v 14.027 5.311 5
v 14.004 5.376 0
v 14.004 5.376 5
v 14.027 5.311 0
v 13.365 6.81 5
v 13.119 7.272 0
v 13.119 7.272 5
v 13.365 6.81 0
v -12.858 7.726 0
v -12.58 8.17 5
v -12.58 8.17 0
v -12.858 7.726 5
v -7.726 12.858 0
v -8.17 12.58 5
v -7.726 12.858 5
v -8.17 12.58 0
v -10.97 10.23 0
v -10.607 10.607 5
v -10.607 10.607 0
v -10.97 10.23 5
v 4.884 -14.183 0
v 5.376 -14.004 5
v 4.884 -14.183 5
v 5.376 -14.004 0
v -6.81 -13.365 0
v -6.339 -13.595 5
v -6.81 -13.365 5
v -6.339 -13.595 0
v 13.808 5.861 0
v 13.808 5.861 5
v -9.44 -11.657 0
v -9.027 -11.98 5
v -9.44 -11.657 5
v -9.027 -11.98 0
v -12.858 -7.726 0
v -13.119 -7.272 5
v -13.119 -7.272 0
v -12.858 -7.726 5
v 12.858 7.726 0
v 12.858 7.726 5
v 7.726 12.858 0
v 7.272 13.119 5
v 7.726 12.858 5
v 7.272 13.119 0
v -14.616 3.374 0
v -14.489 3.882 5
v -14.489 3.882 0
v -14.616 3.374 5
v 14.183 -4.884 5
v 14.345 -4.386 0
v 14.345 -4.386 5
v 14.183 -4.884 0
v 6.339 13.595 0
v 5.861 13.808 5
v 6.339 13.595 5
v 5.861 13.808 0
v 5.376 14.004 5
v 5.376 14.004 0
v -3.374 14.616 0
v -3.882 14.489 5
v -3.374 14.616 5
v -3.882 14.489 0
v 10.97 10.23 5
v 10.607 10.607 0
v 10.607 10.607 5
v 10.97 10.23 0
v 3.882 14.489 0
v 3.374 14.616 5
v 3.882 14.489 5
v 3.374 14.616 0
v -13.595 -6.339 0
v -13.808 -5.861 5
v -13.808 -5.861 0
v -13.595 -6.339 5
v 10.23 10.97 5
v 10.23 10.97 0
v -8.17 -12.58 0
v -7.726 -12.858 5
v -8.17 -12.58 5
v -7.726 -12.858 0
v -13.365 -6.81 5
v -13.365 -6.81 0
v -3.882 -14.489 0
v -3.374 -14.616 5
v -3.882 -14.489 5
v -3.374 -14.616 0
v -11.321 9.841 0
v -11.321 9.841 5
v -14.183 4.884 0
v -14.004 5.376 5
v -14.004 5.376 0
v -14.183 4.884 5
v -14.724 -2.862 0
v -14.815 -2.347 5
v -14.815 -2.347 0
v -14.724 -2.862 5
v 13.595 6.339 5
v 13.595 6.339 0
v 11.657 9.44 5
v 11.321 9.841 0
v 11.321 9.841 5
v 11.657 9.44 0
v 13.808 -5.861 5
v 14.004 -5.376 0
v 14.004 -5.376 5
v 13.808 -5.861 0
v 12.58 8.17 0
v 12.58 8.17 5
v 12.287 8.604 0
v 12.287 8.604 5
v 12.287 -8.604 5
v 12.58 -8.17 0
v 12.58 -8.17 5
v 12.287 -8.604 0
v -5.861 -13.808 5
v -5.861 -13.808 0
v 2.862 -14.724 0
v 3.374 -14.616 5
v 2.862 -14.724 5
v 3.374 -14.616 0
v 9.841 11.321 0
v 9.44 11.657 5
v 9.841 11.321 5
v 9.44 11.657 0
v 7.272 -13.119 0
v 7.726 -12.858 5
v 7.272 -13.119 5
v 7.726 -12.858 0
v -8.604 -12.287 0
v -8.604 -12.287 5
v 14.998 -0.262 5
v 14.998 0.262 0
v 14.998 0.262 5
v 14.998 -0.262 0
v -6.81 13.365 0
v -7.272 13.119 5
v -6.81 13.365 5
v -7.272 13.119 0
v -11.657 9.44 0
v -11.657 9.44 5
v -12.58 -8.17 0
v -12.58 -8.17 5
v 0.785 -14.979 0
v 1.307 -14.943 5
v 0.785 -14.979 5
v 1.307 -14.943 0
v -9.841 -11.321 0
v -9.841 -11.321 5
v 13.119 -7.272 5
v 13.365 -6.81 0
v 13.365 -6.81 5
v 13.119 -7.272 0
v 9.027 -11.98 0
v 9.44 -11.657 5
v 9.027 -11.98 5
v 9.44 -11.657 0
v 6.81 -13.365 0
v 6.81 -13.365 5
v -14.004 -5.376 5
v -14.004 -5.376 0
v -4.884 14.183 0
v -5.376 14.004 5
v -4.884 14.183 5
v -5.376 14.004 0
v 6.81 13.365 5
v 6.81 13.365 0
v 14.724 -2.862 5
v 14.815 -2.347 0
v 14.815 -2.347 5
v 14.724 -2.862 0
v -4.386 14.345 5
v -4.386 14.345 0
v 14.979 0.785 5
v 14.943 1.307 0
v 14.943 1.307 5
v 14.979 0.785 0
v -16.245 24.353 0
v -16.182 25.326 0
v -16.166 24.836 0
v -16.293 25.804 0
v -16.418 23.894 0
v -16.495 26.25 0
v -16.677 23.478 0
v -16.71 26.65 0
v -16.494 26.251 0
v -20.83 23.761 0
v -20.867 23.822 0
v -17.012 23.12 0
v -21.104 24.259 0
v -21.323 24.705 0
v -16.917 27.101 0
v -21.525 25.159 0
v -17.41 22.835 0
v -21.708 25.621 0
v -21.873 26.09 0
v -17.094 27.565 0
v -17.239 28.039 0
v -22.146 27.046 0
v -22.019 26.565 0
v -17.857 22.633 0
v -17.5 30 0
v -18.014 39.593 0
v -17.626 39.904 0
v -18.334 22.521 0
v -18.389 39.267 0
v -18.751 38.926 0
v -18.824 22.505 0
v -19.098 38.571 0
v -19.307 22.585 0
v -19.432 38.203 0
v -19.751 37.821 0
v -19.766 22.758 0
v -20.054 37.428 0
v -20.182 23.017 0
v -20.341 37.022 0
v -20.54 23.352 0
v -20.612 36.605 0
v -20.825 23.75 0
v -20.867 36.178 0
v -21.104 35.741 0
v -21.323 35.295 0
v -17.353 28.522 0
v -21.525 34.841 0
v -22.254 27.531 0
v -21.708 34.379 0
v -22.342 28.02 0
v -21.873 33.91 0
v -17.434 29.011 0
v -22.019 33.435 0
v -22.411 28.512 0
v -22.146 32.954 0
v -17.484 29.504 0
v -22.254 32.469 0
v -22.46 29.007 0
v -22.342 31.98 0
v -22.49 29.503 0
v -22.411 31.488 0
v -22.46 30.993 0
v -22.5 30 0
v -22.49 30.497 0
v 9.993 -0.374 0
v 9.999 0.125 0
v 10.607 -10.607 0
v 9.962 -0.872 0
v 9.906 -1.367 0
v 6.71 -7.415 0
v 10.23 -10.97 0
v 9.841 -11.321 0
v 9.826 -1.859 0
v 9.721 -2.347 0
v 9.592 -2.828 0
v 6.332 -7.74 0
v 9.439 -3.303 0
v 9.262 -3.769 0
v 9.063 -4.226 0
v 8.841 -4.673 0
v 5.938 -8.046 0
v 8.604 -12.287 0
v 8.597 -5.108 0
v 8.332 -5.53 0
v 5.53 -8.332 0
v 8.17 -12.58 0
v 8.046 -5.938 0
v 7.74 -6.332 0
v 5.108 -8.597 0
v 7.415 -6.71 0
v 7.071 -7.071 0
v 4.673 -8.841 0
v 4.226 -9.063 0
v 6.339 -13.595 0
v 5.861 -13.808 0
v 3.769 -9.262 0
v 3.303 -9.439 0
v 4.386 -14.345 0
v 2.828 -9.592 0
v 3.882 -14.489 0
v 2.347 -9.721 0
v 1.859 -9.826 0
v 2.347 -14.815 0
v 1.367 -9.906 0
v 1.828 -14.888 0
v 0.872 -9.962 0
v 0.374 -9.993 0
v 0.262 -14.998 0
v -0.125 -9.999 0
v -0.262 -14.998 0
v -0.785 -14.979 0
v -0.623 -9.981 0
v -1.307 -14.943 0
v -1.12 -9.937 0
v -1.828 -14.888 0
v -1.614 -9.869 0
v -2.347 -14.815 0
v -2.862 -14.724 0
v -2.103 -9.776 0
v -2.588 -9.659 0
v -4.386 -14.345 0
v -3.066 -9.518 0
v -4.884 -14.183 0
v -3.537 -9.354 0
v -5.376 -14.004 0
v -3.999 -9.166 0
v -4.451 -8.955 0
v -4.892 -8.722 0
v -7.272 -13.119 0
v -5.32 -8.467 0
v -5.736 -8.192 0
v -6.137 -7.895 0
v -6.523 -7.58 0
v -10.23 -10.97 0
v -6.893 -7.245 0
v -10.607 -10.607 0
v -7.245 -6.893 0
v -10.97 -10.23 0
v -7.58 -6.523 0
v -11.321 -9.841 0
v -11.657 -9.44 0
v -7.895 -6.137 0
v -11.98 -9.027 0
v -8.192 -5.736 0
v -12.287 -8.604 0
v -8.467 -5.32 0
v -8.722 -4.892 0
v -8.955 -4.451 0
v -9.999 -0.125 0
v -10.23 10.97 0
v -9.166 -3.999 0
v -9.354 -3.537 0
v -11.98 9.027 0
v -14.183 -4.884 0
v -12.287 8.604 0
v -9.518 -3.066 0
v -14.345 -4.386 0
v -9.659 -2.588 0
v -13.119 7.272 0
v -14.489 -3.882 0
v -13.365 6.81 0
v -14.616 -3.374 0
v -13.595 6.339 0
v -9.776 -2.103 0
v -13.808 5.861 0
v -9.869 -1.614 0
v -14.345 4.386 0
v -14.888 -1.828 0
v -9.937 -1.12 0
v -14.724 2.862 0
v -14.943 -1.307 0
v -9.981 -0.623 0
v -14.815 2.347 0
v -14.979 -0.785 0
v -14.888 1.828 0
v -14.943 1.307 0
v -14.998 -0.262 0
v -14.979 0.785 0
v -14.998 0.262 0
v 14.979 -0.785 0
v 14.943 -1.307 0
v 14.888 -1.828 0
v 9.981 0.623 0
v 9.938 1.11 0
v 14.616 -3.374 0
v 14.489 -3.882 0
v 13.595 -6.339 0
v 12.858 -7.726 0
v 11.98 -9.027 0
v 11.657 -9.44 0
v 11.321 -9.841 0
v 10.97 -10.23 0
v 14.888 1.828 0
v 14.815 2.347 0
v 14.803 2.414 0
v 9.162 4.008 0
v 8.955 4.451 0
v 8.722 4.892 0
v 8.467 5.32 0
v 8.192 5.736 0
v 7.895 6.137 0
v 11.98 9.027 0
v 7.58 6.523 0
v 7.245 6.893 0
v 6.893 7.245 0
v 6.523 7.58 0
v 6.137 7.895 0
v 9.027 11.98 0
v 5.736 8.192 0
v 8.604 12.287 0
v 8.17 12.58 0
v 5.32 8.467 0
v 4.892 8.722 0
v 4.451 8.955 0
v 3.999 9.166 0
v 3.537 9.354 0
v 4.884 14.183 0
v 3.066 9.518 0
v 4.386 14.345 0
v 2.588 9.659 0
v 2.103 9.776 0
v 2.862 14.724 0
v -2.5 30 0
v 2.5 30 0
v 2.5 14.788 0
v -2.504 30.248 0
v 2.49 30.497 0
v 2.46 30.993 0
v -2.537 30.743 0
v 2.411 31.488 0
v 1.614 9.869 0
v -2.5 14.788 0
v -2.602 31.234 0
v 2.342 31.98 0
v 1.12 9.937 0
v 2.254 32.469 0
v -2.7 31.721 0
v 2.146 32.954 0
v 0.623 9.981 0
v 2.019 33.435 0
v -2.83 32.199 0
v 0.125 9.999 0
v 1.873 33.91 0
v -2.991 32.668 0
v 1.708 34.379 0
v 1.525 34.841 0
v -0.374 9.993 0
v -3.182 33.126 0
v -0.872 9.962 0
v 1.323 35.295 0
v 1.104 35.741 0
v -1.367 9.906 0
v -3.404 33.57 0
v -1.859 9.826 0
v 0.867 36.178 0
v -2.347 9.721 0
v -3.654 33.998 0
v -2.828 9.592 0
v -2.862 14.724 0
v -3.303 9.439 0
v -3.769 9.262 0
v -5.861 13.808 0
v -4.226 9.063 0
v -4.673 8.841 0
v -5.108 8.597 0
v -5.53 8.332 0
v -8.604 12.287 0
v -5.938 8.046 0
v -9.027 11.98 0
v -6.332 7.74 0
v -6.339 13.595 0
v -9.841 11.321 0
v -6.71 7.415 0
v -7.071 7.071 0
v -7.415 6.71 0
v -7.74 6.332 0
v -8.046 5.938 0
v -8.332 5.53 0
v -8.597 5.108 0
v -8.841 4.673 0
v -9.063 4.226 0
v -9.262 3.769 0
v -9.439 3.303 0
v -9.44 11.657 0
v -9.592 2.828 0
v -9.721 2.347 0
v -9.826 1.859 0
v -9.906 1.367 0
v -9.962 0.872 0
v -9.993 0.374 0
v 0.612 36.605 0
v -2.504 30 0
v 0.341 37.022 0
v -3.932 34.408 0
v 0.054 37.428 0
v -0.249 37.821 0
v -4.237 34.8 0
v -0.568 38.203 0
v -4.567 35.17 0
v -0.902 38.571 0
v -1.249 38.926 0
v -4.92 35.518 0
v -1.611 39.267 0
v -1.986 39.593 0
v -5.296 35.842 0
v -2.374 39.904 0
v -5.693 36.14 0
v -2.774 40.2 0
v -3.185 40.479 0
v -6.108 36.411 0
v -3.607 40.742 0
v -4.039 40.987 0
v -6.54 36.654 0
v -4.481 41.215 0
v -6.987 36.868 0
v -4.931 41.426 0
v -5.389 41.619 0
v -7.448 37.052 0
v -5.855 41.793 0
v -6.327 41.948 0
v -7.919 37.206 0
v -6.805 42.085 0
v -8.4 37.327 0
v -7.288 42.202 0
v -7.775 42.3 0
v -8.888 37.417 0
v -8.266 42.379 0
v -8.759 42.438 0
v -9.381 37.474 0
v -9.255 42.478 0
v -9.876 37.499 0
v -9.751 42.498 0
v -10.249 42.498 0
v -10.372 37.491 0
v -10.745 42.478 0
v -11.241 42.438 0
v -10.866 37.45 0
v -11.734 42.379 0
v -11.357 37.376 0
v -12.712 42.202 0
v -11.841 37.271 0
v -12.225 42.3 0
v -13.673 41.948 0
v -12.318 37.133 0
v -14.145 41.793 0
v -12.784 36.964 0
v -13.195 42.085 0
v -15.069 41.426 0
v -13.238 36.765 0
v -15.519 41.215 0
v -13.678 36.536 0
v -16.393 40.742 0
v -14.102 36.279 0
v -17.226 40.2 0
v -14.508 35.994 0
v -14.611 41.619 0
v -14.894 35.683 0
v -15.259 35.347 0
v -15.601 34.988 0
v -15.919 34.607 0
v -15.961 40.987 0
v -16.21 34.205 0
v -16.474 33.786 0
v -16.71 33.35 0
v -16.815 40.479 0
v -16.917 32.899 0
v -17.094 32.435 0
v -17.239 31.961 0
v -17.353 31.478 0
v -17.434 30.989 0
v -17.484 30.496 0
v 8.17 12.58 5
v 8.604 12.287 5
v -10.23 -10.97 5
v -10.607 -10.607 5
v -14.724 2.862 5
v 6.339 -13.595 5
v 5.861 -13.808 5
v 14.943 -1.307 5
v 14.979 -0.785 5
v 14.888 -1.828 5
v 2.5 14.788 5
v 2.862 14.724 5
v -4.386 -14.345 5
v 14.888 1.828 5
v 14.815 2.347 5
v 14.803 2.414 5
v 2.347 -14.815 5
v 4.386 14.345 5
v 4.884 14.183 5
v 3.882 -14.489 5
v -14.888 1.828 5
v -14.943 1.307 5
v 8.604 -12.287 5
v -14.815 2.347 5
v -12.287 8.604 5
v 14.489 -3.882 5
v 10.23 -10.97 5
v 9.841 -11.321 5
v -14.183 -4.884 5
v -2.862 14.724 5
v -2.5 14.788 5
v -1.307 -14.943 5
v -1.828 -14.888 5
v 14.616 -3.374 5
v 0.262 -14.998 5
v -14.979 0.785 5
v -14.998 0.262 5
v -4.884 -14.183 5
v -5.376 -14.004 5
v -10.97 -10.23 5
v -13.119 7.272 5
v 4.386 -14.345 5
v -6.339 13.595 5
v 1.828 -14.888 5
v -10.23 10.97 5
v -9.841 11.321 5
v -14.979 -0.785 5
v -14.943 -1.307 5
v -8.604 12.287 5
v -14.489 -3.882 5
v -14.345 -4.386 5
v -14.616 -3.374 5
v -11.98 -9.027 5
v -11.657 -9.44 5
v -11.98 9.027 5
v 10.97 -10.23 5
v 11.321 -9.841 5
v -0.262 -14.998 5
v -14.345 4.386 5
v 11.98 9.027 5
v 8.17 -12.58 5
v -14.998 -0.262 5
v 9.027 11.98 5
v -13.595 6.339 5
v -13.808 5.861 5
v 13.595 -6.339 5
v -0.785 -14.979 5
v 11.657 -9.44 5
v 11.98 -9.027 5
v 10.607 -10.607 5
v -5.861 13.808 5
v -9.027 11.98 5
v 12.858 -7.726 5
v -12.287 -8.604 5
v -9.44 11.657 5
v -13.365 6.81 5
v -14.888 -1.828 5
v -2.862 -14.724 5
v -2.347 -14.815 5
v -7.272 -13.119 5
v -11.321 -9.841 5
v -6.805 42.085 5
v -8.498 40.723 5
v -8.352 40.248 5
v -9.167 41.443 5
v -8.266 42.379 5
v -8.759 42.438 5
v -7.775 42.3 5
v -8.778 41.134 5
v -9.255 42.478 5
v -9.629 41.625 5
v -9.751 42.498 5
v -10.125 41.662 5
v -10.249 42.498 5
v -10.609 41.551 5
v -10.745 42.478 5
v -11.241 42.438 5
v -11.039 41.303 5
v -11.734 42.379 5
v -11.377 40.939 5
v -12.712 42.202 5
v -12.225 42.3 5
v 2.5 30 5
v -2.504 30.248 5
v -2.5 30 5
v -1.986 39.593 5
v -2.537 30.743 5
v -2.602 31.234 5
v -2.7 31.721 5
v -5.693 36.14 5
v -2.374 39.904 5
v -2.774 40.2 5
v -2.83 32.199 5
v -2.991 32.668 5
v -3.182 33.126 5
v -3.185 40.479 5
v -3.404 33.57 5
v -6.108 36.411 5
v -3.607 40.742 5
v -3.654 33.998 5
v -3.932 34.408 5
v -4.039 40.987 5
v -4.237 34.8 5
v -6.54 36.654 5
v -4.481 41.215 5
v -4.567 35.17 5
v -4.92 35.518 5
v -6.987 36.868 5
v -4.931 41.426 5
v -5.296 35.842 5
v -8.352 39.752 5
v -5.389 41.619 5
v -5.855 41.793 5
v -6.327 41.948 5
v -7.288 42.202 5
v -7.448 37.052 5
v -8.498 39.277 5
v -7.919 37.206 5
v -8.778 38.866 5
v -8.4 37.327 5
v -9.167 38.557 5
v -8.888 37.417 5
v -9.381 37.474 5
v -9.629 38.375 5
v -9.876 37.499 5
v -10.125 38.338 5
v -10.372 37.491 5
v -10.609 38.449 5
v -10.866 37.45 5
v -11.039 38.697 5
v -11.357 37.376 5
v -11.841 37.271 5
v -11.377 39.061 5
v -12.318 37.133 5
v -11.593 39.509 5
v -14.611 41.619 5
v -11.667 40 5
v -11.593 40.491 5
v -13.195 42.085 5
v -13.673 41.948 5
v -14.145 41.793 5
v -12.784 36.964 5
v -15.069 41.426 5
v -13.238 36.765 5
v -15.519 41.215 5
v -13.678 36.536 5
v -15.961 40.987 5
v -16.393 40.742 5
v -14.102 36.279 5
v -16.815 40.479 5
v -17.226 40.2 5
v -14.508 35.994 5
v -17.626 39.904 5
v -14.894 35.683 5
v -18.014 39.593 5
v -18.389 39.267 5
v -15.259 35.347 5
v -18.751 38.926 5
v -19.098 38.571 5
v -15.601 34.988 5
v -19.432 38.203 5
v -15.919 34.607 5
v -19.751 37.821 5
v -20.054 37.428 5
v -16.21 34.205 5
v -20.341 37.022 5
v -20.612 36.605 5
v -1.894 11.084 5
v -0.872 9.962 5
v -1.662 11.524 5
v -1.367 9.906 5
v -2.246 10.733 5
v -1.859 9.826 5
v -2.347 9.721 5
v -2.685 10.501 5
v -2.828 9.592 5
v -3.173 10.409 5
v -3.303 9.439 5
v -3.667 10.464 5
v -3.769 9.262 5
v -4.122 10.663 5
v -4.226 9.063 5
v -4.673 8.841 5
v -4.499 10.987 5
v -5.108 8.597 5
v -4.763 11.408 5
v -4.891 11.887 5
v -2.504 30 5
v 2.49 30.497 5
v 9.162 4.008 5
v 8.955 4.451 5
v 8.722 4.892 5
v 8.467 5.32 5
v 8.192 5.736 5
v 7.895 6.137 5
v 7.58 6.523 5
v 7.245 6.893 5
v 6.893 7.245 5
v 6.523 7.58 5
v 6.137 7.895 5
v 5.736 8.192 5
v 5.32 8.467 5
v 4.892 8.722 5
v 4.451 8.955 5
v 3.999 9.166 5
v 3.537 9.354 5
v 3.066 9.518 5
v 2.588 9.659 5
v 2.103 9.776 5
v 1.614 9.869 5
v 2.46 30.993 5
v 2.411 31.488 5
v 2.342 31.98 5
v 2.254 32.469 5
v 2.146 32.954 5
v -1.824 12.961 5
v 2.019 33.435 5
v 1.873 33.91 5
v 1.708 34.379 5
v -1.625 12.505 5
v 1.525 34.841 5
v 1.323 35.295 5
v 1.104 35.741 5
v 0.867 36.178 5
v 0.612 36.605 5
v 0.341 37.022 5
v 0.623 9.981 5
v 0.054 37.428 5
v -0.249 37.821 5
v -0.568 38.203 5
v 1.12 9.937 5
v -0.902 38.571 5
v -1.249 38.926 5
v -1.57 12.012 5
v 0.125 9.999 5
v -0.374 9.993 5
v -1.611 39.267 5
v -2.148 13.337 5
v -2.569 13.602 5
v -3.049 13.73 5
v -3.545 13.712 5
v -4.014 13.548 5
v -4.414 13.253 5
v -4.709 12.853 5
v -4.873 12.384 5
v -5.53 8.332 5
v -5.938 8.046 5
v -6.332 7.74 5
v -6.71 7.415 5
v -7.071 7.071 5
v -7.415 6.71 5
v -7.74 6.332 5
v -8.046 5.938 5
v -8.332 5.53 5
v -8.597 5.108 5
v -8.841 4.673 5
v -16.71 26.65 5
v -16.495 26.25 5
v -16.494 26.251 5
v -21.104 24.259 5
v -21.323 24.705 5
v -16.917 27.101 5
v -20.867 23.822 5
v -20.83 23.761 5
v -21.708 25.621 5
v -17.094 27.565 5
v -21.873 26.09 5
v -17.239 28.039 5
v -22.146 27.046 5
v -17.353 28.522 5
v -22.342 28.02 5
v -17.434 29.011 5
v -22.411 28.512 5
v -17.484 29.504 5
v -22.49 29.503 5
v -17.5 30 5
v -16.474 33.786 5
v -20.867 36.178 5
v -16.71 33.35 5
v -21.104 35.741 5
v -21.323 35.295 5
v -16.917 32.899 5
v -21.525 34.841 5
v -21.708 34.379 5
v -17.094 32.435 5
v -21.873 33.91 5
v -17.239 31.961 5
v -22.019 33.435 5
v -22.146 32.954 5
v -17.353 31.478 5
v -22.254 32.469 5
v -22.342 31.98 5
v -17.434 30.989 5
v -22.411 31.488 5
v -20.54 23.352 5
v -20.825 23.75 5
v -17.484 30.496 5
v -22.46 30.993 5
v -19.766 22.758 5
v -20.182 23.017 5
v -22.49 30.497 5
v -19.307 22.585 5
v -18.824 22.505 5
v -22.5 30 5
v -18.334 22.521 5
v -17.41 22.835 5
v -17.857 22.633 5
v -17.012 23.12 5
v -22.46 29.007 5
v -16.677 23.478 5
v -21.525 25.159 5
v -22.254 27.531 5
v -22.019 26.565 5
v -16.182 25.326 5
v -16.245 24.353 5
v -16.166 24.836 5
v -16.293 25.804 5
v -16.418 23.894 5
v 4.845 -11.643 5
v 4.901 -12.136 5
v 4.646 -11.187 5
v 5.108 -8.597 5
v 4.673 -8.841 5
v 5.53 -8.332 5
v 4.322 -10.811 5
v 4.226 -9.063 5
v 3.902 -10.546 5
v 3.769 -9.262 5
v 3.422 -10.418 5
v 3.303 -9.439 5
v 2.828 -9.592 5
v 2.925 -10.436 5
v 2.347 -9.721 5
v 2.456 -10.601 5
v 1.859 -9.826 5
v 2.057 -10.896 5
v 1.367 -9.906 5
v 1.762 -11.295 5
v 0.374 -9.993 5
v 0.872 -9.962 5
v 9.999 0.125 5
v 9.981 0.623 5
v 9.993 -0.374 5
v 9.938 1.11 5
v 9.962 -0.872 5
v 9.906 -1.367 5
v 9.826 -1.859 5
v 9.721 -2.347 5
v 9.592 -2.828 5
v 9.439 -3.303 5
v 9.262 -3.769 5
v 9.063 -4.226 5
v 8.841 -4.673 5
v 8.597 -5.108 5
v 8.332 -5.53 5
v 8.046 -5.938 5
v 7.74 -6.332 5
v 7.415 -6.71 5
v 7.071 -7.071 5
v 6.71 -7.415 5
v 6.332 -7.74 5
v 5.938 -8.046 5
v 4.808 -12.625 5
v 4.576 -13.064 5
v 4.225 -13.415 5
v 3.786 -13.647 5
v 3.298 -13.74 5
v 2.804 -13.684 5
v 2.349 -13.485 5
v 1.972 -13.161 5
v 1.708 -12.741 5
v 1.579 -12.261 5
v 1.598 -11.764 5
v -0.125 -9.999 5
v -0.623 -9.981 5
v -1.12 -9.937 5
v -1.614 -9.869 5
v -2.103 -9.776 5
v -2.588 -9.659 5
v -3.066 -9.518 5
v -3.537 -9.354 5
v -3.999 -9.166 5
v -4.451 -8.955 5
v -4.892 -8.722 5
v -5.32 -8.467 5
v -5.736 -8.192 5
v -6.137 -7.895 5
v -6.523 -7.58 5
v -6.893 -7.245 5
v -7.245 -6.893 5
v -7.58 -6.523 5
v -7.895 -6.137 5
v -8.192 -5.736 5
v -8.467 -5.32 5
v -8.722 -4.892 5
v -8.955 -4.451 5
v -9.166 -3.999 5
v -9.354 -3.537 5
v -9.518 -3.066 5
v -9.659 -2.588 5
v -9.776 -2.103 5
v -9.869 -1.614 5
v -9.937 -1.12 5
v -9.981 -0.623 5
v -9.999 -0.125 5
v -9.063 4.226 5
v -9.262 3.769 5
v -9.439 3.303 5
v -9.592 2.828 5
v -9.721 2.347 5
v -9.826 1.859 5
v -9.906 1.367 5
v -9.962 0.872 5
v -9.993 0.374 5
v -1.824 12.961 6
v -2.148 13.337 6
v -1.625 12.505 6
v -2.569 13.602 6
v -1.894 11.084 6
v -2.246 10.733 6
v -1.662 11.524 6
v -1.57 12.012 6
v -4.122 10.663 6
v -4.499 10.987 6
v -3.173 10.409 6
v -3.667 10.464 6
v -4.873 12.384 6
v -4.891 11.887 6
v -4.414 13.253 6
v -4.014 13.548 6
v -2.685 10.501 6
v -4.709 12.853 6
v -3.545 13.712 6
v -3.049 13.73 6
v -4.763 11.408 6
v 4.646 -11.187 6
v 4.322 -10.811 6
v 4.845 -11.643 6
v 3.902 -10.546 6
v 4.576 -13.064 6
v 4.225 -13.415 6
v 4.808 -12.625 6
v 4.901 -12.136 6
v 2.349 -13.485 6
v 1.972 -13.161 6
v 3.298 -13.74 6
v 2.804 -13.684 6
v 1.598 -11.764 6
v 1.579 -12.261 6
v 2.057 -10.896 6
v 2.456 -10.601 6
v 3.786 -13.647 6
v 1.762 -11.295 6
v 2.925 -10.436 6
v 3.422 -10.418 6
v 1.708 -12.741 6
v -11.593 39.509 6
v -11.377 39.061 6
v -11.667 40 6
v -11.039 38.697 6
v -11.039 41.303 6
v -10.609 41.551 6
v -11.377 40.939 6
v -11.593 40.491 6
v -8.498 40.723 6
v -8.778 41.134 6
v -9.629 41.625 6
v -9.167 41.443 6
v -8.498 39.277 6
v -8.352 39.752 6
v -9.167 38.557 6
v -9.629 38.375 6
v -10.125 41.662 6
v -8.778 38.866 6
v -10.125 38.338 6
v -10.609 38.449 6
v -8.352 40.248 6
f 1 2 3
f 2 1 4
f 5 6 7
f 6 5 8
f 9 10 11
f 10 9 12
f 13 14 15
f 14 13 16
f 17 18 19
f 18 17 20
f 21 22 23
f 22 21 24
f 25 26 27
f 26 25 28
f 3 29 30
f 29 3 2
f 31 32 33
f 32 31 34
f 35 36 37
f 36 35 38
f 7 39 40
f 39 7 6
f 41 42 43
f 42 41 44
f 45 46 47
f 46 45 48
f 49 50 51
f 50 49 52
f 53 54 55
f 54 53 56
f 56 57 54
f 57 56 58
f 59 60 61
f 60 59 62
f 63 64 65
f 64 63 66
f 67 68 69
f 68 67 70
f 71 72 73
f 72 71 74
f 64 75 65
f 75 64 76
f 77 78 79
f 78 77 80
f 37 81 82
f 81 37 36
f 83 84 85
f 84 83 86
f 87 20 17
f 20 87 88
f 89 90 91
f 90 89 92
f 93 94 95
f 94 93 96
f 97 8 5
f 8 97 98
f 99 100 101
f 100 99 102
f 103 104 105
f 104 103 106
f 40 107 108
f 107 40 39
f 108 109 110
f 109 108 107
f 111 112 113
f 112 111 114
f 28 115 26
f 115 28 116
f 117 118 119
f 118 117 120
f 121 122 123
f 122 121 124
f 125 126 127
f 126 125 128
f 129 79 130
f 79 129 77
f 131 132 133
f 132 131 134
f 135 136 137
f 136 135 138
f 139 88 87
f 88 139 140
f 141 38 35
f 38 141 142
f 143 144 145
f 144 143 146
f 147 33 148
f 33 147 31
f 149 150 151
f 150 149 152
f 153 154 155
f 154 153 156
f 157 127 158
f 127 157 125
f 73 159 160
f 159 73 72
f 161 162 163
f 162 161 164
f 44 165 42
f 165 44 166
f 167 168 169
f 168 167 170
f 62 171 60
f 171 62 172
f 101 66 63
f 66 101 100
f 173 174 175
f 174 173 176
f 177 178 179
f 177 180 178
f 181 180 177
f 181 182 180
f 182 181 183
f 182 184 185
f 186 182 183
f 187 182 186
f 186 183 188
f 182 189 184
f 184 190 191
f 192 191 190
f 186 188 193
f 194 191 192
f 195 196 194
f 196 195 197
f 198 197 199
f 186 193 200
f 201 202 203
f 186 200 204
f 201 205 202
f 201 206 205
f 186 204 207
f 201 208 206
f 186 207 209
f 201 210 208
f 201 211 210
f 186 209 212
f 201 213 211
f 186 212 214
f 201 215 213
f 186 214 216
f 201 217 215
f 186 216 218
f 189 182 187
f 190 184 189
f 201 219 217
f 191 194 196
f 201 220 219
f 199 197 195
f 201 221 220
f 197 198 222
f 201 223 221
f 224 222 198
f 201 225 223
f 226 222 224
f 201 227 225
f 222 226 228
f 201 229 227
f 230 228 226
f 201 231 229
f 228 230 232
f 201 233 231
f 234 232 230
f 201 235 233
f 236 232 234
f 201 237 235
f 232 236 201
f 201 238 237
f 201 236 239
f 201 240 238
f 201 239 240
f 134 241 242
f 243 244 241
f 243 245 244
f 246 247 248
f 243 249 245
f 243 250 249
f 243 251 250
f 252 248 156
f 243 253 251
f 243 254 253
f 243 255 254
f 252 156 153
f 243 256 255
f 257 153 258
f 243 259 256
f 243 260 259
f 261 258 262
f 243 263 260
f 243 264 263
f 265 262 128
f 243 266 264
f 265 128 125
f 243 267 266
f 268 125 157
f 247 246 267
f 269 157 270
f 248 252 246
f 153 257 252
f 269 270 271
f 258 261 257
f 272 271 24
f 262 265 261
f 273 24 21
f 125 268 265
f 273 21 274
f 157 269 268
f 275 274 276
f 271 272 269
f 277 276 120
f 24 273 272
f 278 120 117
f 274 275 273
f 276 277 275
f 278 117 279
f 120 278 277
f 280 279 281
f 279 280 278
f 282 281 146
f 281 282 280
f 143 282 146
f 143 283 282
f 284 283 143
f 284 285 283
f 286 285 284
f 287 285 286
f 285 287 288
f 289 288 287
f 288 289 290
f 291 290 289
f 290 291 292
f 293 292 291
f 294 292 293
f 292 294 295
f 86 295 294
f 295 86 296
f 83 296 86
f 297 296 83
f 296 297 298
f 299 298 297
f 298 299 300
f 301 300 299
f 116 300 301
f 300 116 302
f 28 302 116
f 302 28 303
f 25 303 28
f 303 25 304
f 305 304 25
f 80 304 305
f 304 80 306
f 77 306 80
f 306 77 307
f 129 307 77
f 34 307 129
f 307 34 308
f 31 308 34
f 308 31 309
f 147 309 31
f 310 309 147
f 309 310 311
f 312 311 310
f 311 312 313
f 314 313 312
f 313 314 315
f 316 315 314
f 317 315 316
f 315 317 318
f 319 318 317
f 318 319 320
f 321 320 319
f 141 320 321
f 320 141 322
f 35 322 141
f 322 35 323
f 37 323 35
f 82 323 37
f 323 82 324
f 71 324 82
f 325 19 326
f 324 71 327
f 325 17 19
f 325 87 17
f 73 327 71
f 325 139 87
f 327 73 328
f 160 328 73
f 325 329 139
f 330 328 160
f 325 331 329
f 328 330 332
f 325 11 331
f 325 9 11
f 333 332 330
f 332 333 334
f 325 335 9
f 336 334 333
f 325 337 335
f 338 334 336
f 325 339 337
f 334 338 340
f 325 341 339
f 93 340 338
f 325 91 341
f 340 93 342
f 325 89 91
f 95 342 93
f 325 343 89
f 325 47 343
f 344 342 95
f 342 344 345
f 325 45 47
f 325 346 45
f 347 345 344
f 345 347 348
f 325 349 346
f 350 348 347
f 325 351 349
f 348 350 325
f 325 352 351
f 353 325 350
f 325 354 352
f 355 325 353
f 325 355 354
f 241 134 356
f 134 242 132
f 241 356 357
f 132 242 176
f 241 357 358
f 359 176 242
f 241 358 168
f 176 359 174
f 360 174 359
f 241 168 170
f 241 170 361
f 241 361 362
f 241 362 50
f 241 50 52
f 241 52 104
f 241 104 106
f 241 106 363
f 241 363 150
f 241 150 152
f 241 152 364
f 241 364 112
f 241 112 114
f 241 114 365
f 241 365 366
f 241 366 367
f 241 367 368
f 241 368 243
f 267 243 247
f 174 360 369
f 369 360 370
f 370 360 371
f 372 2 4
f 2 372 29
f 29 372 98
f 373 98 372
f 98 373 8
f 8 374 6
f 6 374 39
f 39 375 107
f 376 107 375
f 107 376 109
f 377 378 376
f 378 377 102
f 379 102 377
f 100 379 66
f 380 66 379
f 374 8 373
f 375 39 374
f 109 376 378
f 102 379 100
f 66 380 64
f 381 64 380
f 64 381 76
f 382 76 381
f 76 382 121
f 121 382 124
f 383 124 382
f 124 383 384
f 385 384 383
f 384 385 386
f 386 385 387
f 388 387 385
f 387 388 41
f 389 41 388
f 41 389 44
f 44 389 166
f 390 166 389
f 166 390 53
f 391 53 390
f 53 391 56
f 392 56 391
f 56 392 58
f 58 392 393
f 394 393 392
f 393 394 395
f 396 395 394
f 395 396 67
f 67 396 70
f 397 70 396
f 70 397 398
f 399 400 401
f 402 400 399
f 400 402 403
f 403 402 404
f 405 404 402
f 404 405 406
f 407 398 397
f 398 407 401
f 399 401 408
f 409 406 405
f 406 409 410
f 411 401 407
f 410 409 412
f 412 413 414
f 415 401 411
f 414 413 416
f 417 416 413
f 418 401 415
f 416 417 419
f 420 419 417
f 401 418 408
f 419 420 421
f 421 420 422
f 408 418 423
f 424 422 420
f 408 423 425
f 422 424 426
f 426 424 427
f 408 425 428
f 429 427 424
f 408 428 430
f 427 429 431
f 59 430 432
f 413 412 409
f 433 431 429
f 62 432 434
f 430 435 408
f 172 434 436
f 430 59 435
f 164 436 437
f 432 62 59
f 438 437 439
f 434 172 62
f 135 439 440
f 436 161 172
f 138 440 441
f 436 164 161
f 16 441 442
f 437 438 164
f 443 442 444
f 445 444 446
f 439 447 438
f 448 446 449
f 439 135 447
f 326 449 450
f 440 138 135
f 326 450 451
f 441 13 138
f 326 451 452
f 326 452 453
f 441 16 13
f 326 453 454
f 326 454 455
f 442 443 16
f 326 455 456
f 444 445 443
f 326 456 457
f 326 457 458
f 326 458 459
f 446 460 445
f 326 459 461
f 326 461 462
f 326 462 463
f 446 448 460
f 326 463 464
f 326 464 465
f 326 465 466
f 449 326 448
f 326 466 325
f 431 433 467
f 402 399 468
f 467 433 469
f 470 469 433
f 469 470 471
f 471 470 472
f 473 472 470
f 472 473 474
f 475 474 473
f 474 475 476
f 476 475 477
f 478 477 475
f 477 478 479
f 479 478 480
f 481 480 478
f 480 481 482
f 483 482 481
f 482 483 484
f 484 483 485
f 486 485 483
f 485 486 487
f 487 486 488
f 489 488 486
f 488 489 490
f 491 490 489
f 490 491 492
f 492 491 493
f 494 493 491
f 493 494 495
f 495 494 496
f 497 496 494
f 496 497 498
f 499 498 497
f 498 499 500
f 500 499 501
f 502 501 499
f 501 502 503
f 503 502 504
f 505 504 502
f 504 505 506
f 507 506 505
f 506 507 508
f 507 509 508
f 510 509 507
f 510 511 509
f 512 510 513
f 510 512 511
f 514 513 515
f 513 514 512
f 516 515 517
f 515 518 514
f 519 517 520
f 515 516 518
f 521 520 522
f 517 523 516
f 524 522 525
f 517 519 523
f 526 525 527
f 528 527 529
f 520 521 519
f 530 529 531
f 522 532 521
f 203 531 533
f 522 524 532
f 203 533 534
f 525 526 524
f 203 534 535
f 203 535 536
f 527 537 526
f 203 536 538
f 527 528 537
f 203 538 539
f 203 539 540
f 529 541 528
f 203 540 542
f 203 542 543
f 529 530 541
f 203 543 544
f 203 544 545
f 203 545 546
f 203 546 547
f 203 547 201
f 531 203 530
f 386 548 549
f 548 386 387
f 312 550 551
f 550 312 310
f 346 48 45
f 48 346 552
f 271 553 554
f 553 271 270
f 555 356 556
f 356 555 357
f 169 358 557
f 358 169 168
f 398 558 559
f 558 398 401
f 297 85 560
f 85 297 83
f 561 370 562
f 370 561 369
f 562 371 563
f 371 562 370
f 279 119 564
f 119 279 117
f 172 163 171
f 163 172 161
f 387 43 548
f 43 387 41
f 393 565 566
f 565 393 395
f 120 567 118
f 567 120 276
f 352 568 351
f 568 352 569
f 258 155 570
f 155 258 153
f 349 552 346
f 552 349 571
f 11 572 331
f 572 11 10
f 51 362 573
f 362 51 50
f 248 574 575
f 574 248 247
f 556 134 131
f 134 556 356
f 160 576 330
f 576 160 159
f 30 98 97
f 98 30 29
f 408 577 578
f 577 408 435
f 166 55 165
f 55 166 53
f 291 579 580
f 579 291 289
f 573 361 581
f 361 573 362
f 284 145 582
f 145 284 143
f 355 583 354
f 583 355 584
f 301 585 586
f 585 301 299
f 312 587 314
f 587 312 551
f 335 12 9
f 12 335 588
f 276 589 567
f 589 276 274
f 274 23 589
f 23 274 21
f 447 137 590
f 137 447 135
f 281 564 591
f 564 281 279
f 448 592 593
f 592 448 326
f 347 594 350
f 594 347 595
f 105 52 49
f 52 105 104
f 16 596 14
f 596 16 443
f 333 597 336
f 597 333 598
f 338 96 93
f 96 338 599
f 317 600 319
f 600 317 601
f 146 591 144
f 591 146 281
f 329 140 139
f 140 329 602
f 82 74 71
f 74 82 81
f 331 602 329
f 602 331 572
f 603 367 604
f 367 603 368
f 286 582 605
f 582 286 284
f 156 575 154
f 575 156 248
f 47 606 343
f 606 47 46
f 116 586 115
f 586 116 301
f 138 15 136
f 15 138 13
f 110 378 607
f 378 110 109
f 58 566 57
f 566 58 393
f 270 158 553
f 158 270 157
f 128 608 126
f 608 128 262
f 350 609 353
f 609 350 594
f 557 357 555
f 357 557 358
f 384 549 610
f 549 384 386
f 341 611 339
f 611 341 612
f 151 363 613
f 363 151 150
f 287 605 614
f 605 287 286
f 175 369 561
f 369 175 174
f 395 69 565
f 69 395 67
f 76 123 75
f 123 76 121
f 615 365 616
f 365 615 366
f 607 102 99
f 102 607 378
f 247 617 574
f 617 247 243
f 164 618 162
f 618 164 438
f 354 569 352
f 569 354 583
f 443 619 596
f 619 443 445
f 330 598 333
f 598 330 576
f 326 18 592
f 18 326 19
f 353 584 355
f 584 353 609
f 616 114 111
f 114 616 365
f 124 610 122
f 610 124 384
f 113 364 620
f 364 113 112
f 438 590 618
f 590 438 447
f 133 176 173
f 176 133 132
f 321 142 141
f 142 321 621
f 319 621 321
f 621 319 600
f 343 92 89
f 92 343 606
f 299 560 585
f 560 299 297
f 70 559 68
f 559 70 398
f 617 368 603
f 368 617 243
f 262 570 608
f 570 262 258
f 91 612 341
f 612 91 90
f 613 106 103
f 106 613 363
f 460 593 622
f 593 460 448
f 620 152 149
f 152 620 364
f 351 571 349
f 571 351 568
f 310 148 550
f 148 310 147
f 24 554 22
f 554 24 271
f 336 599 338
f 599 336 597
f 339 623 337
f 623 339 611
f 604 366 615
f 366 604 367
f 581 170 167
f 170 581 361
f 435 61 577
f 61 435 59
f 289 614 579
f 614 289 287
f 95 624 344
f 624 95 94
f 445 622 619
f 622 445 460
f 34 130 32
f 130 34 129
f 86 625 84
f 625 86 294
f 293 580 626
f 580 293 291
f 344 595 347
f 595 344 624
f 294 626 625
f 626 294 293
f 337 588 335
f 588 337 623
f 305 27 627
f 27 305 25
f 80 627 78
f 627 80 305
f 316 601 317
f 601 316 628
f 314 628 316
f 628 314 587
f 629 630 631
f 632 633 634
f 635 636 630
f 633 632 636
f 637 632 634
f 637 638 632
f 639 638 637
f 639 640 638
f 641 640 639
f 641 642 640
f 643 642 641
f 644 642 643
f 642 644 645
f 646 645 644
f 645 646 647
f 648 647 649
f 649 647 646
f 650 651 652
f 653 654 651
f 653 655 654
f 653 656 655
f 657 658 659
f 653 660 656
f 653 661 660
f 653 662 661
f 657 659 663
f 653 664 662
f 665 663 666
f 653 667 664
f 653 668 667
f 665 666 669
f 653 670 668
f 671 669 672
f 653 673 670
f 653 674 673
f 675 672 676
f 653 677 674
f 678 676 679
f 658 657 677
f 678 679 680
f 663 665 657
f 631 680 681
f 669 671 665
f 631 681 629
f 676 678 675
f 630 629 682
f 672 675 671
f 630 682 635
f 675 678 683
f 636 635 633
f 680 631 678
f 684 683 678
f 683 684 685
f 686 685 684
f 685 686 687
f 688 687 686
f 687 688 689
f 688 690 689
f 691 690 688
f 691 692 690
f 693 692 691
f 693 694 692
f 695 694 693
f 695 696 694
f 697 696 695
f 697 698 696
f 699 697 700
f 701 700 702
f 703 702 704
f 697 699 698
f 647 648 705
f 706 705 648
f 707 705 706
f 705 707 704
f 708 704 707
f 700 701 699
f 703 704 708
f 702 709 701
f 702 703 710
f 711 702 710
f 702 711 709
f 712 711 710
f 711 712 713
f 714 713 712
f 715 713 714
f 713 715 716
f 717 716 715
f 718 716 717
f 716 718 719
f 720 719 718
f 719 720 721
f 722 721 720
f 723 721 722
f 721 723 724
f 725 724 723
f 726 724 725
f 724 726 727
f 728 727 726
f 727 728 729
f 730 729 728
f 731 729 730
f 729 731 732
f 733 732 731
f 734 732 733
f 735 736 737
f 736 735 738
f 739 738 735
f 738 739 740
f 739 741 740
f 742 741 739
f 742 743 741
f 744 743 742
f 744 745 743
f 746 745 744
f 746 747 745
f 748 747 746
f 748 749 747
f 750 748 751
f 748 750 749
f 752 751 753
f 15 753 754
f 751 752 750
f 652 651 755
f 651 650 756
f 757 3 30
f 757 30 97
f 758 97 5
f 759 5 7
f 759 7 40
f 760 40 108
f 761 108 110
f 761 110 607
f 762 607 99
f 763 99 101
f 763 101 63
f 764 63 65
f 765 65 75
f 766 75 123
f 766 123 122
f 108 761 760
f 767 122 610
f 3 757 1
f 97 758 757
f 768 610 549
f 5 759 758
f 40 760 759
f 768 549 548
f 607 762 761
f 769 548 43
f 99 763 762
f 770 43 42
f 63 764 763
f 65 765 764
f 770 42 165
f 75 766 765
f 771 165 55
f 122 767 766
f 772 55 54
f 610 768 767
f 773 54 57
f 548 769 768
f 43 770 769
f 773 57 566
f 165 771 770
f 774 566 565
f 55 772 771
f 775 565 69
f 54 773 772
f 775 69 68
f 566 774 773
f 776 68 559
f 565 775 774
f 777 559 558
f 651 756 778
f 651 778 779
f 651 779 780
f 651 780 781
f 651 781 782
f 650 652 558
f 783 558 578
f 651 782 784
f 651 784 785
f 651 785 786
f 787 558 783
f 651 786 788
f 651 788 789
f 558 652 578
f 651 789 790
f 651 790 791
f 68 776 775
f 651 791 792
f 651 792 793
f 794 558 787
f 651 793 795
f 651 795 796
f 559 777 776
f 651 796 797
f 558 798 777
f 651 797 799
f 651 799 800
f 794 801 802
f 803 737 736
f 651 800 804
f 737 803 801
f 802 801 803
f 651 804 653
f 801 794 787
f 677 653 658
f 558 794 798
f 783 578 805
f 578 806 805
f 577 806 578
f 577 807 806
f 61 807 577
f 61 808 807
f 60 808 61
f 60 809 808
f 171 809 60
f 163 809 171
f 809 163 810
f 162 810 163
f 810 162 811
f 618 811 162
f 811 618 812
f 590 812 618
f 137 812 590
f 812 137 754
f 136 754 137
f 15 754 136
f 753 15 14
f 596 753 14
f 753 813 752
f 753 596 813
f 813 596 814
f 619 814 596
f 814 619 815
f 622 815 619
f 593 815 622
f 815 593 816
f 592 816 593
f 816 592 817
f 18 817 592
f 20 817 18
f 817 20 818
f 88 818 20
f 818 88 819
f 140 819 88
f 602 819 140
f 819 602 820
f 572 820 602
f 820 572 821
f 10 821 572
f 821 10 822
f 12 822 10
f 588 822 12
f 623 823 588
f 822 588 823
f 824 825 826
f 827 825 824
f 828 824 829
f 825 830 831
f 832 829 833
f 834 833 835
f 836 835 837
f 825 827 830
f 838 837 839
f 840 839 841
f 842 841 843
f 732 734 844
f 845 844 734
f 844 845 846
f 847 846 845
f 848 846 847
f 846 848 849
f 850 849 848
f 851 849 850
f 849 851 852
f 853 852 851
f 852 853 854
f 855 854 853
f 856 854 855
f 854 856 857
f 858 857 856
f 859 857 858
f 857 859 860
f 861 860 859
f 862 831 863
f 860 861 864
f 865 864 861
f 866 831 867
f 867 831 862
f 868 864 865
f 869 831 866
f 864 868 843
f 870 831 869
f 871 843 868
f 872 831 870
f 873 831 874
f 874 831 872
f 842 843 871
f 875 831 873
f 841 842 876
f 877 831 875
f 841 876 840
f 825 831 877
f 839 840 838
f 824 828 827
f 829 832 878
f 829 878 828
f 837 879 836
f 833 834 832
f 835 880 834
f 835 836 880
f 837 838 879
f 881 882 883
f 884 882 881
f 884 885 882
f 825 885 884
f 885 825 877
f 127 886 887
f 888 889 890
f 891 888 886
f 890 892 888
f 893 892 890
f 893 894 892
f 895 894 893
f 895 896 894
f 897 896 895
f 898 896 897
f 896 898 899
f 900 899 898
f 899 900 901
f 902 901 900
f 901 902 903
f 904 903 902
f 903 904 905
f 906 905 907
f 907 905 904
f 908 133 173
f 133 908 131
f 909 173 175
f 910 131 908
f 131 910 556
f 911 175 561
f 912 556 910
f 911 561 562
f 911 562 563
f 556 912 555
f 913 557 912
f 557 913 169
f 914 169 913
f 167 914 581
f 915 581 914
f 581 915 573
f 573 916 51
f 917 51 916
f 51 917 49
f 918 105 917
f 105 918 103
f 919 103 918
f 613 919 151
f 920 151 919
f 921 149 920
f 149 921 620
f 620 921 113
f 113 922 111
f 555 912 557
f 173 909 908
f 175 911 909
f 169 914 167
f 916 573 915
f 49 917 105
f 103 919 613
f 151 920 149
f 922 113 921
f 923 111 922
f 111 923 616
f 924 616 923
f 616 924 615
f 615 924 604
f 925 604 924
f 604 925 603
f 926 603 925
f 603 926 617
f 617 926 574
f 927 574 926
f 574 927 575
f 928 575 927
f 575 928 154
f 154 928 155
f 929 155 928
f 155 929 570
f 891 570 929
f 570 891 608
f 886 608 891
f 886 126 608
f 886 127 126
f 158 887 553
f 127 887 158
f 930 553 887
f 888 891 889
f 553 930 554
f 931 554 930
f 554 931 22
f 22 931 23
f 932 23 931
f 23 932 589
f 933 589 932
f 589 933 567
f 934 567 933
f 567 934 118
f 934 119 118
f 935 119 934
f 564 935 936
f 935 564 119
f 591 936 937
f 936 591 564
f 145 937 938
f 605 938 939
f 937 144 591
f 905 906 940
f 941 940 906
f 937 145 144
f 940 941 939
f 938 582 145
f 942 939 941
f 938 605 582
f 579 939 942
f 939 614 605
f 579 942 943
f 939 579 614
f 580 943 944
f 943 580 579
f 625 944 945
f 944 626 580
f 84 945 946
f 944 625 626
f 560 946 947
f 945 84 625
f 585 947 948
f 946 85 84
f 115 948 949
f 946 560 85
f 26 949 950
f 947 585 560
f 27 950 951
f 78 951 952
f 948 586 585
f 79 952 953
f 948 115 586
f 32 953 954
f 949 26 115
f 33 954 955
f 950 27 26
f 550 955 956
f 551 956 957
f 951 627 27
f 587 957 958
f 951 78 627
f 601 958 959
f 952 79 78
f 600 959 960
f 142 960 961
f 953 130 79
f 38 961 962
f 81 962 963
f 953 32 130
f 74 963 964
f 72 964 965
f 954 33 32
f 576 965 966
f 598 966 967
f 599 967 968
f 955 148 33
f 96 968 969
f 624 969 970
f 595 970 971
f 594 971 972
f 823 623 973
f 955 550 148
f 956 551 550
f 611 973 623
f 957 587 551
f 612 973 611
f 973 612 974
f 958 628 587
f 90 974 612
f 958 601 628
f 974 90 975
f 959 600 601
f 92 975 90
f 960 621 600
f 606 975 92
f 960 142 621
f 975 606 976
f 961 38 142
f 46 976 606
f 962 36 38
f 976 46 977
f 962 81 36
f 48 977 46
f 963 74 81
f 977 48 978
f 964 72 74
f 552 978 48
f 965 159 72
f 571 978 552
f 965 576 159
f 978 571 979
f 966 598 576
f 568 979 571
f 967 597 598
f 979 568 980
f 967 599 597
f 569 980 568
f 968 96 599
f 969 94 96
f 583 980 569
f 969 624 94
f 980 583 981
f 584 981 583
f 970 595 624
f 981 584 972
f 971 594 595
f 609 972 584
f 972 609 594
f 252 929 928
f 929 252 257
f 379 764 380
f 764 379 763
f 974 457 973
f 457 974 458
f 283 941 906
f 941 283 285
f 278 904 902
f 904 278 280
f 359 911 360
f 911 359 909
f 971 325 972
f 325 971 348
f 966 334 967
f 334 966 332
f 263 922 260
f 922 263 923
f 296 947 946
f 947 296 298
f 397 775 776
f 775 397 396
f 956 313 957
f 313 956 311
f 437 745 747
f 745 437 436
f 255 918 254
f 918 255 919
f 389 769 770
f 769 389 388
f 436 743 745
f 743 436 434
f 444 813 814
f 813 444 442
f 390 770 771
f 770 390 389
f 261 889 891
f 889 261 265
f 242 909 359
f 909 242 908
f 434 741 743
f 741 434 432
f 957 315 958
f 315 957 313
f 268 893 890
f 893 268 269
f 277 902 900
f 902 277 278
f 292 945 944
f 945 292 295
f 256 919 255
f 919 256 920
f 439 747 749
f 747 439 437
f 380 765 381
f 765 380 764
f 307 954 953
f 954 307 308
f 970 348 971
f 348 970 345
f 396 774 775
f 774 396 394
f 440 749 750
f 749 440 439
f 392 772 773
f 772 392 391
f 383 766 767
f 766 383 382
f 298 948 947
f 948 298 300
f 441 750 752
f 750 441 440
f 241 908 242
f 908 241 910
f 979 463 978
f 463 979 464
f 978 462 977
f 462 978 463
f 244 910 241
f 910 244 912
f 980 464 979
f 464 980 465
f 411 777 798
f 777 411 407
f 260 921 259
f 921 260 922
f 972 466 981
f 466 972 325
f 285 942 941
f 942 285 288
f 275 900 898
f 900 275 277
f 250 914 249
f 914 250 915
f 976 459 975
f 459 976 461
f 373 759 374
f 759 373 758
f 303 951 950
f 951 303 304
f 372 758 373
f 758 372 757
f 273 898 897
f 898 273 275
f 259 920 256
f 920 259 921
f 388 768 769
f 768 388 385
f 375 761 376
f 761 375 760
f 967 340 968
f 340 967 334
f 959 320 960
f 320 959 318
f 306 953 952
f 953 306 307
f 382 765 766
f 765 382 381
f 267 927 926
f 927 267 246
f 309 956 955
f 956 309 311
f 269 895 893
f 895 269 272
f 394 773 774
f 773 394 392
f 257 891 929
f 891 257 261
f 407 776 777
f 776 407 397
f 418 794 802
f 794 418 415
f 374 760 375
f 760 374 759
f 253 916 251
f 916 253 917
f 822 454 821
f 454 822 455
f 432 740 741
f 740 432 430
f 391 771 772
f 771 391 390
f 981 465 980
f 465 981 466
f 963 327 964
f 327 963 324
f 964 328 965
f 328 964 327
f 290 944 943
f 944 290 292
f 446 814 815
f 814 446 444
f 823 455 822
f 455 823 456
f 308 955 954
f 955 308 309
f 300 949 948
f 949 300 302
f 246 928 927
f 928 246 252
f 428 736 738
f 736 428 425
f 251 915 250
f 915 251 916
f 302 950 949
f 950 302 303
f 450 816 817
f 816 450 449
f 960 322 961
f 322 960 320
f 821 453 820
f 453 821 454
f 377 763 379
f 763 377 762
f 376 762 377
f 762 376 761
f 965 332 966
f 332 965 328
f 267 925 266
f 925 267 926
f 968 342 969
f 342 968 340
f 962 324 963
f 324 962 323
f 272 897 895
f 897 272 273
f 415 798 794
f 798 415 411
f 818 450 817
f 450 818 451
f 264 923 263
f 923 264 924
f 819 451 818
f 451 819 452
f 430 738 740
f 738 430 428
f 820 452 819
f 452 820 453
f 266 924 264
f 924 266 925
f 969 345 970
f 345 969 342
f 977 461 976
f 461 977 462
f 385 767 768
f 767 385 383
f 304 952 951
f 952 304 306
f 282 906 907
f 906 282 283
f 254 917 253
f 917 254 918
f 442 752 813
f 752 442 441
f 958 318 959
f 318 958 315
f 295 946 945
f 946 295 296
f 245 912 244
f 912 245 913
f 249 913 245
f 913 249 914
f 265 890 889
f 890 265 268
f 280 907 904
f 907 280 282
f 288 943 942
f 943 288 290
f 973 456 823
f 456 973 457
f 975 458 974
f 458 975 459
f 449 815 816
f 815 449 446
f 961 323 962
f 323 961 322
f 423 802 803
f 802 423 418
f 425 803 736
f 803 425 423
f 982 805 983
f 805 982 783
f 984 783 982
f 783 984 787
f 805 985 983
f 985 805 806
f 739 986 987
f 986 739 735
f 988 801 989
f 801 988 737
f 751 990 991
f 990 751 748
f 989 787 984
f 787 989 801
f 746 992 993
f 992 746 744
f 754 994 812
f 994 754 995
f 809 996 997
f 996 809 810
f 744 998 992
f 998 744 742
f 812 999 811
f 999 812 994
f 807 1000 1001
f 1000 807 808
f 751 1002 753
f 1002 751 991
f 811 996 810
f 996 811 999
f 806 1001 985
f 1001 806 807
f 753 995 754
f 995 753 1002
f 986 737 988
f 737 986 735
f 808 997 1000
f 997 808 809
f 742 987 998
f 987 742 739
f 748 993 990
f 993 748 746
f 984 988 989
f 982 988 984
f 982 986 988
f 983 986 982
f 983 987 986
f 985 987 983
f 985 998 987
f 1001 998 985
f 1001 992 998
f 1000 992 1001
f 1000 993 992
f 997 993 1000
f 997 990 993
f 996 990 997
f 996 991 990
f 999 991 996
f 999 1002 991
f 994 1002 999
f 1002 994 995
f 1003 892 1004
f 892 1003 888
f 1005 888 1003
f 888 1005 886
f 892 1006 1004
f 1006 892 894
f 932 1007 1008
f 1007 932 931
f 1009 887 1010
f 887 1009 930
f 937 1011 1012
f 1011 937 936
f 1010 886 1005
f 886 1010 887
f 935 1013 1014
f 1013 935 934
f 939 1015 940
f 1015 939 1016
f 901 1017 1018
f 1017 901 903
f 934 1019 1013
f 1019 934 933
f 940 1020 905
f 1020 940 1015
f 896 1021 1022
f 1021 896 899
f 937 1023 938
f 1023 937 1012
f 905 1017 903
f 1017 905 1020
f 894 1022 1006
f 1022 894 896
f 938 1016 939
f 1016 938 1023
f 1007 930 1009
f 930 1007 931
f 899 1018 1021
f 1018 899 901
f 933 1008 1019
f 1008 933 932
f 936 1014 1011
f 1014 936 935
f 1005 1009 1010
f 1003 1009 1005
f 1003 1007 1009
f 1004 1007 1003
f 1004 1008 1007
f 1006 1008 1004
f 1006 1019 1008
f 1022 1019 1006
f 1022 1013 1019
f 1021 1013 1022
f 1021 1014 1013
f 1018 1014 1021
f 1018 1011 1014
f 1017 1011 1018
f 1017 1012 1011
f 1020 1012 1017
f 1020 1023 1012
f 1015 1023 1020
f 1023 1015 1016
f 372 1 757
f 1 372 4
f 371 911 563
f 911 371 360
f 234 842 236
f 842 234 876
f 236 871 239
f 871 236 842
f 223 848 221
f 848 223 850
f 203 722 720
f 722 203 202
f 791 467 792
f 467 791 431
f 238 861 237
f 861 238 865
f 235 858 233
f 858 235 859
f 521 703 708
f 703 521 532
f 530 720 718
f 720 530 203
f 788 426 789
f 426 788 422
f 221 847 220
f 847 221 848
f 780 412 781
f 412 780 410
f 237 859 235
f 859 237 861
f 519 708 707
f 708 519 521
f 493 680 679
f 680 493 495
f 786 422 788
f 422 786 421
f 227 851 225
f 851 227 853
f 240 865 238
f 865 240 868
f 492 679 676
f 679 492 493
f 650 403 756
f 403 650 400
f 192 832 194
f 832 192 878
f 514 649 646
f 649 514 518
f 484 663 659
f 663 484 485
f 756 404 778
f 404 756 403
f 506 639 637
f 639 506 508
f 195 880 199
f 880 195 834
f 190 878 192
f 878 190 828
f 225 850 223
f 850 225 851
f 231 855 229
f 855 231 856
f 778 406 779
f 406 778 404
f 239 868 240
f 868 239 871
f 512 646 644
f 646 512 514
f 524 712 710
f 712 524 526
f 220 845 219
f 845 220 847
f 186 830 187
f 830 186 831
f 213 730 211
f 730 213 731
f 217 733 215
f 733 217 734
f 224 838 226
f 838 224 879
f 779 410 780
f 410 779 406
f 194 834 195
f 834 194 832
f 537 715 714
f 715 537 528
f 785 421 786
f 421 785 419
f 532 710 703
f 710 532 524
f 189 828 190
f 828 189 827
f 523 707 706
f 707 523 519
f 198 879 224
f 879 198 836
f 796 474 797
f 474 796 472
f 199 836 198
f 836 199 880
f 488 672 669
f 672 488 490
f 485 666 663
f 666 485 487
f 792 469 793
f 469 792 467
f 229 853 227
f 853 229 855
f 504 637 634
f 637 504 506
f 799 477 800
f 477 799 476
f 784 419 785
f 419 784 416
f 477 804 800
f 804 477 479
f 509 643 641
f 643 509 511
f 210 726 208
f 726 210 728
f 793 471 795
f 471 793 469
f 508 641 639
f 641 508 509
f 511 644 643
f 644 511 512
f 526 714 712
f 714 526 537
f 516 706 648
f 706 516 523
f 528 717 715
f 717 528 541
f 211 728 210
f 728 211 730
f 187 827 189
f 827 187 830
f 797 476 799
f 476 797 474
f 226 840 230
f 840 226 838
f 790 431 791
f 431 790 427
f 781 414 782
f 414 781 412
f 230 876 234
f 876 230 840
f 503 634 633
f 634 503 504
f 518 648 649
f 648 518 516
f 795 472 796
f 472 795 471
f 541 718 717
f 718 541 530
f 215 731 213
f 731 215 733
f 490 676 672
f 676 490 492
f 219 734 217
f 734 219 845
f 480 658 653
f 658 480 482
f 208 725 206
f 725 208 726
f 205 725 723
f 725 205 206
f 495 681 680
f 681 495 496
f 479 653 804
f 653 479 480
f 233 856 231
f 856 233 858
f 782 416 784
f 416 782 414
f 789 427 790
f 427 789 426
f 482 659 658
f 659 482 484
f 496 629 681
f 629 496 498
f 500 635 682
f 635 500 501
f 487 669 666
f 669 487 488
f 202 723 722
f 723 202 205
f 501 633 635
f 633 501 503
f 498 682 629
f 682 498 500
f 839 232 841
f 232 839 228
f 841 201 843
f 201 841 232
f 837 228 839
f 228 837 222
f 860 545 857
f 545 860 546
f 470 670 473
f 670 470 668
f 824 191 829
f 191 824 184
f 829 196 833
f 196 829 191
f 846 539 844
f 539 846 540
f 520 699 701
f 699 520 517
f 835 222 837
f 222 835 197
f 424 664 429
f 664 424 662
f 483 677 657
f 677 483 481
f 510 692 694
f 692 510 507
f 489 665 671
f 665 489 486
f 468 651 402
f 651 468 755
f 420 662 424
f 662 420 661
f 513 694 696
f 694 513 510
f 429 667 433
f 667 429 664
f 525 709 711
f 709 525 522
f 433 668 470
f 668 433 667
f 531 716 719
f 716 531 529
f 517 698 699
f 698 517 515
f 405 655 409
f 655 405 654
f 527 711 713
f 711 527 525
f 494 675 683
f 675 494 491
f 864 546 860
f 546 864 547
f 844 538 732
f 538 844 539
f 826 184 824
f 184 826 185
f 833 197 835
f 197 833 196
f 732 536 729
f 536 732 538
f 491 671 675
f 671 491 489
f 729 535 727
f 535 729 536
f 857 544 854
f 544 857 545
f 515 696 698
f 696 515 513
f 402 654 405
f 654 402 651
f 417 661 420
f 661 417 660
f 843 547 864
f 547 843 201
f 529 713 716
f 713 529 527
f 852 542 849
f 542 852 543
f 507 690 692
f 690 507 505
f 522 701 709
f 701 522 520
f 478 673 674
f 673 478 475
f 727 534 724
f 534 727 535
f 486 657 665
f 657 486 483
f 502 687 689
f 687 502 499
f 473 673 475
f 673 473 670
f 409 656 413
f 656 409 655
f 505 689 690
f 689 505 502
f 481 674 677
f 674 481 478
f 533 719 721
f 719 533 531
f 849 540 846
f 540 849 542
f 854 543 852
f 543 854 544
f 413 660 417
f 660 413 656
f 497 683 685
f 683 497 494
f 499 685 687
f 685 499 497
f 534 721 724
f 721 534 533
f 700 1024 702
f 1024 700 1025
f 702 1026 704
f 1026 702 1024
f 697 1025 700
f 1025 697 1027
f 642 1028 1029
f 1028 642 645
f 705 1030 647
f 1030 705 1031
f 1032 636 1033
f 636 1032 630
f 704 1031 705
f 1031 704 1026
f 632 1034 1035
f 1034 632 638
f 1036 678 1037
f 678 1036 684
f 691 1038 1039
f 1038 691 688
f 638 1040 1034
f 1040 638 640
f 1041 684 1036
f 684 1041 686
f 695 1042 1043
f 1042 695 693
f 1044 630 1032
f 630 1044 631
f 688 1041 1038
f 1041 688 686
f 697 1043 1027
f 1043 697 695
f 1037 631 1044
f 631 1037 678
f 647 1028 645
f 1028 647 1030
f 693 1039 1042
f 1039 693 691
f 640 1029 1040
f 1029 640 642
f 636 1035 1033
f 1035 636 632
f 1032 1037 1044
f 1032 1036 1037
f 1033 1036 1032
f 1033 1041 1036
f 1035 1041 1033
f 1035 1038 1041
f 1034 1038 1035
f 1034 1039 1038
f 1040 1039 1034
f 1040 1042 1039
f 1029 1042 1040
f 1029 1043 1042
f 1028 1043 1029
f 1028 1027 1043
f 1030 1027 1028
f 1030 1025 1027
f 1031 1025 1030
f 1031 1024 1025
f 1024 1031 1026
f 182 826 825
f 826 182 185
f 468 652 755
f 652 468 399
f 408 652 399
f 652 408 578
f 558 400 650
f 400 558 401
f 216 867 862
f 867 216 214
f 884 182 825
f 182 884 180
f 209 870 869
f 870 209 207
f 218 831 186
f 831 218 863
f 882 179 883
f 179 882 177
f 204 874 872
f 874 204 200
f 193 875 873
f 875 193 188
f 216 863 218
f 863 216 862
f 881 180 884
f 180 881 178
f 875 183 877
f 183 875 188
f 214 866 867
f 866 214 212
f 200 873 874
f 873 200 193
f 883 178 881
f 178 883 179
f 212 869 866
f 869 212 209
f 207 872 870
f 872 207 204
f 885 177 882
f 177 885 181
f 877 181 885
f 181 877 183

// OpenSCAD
// OpenSCAD
// Backpack hook for kid's sports bag
// Print with infll 100%


$thickness = 5; // thickness of design

// Ring geometry
$rir=10;         // central hole in the ring
$rth=$thickness; // ring thickness
$rw=$thickness;  // ring width
$row=3;          // ring outlet width
// Hook geometry
$hw=$thickness; // hook width
$hlen=20;       // hook straight shank length
$hir=7.5;         // hook circle inner radius
$hangle=30;     // hook end angle
$th=$hw;        // hook thickness

$fa=2;$fs=0.5;

// ir: inner_radius
// w: width
// th: thickness
module ring(ir, w, th)
{
       difference(){
           cylinder(r=ir+w,h=th);           
           cylinder(r=ir,h=th+1);           
       }
}

module ring_with_support(ir, w, th) {
    ring(ir, w, th);
    translate([0, ir+w/2, th/5]) cylinder(h = th, r = w/3, center = false);
    translate([0, -ir-w/2, th/5]) cylinder(h = th, r = w/3, center = false);
}

// w: width of the ring outlet
module outlet(w)
{
    cube([w+1, w, w+1], center = true);
}

// [dx, dy] determines horizontal translation
// ir: ring inner radius
// w: ring width
// th: thickness
// ow: outlet width
module ring_with_support_and_outlet(dx, dy, ir, w, th, ow)
{ 
    translate([dx,dy,0])
    rotate([0,0,15])
    difference() {
        ring_with_support(ir, w, th);
        translate([ir+w/2, 0, th/2])
        cube([w+1, ow, th+1], center = true);
    }
}

// w: width
// len: straight shank length
// ir: inner circle radius
// ang: hook end angle
// th: thickness
module hook(w, len, ir, ang, th)
{
    translate([-ir-w,0,0])cube([w,len,th]);
    difference(){
        ring_with_support(ir, w, th);
        rotate([0,0,ang])cube([2.5*ir,2*ir,th * 7/5]);
        translate([-2*ir,0,0])cube([ir*2,ir*2,th * 7/5]);
    }
    rotate([0,0,ang])translate([ir+w/2,0,0])cylinder(d=w,h=th);

}


module main()
{
    ring_with_support_and_outlet(0, 0, $rir, $rw, $rth, $row);
    translate([-$hir-$hw/2, $hlen+$rir, 0])
    rotate([0, 0, 180])
    hook($hw, $hlen, $hir, $hangle, $th);
}

main();
